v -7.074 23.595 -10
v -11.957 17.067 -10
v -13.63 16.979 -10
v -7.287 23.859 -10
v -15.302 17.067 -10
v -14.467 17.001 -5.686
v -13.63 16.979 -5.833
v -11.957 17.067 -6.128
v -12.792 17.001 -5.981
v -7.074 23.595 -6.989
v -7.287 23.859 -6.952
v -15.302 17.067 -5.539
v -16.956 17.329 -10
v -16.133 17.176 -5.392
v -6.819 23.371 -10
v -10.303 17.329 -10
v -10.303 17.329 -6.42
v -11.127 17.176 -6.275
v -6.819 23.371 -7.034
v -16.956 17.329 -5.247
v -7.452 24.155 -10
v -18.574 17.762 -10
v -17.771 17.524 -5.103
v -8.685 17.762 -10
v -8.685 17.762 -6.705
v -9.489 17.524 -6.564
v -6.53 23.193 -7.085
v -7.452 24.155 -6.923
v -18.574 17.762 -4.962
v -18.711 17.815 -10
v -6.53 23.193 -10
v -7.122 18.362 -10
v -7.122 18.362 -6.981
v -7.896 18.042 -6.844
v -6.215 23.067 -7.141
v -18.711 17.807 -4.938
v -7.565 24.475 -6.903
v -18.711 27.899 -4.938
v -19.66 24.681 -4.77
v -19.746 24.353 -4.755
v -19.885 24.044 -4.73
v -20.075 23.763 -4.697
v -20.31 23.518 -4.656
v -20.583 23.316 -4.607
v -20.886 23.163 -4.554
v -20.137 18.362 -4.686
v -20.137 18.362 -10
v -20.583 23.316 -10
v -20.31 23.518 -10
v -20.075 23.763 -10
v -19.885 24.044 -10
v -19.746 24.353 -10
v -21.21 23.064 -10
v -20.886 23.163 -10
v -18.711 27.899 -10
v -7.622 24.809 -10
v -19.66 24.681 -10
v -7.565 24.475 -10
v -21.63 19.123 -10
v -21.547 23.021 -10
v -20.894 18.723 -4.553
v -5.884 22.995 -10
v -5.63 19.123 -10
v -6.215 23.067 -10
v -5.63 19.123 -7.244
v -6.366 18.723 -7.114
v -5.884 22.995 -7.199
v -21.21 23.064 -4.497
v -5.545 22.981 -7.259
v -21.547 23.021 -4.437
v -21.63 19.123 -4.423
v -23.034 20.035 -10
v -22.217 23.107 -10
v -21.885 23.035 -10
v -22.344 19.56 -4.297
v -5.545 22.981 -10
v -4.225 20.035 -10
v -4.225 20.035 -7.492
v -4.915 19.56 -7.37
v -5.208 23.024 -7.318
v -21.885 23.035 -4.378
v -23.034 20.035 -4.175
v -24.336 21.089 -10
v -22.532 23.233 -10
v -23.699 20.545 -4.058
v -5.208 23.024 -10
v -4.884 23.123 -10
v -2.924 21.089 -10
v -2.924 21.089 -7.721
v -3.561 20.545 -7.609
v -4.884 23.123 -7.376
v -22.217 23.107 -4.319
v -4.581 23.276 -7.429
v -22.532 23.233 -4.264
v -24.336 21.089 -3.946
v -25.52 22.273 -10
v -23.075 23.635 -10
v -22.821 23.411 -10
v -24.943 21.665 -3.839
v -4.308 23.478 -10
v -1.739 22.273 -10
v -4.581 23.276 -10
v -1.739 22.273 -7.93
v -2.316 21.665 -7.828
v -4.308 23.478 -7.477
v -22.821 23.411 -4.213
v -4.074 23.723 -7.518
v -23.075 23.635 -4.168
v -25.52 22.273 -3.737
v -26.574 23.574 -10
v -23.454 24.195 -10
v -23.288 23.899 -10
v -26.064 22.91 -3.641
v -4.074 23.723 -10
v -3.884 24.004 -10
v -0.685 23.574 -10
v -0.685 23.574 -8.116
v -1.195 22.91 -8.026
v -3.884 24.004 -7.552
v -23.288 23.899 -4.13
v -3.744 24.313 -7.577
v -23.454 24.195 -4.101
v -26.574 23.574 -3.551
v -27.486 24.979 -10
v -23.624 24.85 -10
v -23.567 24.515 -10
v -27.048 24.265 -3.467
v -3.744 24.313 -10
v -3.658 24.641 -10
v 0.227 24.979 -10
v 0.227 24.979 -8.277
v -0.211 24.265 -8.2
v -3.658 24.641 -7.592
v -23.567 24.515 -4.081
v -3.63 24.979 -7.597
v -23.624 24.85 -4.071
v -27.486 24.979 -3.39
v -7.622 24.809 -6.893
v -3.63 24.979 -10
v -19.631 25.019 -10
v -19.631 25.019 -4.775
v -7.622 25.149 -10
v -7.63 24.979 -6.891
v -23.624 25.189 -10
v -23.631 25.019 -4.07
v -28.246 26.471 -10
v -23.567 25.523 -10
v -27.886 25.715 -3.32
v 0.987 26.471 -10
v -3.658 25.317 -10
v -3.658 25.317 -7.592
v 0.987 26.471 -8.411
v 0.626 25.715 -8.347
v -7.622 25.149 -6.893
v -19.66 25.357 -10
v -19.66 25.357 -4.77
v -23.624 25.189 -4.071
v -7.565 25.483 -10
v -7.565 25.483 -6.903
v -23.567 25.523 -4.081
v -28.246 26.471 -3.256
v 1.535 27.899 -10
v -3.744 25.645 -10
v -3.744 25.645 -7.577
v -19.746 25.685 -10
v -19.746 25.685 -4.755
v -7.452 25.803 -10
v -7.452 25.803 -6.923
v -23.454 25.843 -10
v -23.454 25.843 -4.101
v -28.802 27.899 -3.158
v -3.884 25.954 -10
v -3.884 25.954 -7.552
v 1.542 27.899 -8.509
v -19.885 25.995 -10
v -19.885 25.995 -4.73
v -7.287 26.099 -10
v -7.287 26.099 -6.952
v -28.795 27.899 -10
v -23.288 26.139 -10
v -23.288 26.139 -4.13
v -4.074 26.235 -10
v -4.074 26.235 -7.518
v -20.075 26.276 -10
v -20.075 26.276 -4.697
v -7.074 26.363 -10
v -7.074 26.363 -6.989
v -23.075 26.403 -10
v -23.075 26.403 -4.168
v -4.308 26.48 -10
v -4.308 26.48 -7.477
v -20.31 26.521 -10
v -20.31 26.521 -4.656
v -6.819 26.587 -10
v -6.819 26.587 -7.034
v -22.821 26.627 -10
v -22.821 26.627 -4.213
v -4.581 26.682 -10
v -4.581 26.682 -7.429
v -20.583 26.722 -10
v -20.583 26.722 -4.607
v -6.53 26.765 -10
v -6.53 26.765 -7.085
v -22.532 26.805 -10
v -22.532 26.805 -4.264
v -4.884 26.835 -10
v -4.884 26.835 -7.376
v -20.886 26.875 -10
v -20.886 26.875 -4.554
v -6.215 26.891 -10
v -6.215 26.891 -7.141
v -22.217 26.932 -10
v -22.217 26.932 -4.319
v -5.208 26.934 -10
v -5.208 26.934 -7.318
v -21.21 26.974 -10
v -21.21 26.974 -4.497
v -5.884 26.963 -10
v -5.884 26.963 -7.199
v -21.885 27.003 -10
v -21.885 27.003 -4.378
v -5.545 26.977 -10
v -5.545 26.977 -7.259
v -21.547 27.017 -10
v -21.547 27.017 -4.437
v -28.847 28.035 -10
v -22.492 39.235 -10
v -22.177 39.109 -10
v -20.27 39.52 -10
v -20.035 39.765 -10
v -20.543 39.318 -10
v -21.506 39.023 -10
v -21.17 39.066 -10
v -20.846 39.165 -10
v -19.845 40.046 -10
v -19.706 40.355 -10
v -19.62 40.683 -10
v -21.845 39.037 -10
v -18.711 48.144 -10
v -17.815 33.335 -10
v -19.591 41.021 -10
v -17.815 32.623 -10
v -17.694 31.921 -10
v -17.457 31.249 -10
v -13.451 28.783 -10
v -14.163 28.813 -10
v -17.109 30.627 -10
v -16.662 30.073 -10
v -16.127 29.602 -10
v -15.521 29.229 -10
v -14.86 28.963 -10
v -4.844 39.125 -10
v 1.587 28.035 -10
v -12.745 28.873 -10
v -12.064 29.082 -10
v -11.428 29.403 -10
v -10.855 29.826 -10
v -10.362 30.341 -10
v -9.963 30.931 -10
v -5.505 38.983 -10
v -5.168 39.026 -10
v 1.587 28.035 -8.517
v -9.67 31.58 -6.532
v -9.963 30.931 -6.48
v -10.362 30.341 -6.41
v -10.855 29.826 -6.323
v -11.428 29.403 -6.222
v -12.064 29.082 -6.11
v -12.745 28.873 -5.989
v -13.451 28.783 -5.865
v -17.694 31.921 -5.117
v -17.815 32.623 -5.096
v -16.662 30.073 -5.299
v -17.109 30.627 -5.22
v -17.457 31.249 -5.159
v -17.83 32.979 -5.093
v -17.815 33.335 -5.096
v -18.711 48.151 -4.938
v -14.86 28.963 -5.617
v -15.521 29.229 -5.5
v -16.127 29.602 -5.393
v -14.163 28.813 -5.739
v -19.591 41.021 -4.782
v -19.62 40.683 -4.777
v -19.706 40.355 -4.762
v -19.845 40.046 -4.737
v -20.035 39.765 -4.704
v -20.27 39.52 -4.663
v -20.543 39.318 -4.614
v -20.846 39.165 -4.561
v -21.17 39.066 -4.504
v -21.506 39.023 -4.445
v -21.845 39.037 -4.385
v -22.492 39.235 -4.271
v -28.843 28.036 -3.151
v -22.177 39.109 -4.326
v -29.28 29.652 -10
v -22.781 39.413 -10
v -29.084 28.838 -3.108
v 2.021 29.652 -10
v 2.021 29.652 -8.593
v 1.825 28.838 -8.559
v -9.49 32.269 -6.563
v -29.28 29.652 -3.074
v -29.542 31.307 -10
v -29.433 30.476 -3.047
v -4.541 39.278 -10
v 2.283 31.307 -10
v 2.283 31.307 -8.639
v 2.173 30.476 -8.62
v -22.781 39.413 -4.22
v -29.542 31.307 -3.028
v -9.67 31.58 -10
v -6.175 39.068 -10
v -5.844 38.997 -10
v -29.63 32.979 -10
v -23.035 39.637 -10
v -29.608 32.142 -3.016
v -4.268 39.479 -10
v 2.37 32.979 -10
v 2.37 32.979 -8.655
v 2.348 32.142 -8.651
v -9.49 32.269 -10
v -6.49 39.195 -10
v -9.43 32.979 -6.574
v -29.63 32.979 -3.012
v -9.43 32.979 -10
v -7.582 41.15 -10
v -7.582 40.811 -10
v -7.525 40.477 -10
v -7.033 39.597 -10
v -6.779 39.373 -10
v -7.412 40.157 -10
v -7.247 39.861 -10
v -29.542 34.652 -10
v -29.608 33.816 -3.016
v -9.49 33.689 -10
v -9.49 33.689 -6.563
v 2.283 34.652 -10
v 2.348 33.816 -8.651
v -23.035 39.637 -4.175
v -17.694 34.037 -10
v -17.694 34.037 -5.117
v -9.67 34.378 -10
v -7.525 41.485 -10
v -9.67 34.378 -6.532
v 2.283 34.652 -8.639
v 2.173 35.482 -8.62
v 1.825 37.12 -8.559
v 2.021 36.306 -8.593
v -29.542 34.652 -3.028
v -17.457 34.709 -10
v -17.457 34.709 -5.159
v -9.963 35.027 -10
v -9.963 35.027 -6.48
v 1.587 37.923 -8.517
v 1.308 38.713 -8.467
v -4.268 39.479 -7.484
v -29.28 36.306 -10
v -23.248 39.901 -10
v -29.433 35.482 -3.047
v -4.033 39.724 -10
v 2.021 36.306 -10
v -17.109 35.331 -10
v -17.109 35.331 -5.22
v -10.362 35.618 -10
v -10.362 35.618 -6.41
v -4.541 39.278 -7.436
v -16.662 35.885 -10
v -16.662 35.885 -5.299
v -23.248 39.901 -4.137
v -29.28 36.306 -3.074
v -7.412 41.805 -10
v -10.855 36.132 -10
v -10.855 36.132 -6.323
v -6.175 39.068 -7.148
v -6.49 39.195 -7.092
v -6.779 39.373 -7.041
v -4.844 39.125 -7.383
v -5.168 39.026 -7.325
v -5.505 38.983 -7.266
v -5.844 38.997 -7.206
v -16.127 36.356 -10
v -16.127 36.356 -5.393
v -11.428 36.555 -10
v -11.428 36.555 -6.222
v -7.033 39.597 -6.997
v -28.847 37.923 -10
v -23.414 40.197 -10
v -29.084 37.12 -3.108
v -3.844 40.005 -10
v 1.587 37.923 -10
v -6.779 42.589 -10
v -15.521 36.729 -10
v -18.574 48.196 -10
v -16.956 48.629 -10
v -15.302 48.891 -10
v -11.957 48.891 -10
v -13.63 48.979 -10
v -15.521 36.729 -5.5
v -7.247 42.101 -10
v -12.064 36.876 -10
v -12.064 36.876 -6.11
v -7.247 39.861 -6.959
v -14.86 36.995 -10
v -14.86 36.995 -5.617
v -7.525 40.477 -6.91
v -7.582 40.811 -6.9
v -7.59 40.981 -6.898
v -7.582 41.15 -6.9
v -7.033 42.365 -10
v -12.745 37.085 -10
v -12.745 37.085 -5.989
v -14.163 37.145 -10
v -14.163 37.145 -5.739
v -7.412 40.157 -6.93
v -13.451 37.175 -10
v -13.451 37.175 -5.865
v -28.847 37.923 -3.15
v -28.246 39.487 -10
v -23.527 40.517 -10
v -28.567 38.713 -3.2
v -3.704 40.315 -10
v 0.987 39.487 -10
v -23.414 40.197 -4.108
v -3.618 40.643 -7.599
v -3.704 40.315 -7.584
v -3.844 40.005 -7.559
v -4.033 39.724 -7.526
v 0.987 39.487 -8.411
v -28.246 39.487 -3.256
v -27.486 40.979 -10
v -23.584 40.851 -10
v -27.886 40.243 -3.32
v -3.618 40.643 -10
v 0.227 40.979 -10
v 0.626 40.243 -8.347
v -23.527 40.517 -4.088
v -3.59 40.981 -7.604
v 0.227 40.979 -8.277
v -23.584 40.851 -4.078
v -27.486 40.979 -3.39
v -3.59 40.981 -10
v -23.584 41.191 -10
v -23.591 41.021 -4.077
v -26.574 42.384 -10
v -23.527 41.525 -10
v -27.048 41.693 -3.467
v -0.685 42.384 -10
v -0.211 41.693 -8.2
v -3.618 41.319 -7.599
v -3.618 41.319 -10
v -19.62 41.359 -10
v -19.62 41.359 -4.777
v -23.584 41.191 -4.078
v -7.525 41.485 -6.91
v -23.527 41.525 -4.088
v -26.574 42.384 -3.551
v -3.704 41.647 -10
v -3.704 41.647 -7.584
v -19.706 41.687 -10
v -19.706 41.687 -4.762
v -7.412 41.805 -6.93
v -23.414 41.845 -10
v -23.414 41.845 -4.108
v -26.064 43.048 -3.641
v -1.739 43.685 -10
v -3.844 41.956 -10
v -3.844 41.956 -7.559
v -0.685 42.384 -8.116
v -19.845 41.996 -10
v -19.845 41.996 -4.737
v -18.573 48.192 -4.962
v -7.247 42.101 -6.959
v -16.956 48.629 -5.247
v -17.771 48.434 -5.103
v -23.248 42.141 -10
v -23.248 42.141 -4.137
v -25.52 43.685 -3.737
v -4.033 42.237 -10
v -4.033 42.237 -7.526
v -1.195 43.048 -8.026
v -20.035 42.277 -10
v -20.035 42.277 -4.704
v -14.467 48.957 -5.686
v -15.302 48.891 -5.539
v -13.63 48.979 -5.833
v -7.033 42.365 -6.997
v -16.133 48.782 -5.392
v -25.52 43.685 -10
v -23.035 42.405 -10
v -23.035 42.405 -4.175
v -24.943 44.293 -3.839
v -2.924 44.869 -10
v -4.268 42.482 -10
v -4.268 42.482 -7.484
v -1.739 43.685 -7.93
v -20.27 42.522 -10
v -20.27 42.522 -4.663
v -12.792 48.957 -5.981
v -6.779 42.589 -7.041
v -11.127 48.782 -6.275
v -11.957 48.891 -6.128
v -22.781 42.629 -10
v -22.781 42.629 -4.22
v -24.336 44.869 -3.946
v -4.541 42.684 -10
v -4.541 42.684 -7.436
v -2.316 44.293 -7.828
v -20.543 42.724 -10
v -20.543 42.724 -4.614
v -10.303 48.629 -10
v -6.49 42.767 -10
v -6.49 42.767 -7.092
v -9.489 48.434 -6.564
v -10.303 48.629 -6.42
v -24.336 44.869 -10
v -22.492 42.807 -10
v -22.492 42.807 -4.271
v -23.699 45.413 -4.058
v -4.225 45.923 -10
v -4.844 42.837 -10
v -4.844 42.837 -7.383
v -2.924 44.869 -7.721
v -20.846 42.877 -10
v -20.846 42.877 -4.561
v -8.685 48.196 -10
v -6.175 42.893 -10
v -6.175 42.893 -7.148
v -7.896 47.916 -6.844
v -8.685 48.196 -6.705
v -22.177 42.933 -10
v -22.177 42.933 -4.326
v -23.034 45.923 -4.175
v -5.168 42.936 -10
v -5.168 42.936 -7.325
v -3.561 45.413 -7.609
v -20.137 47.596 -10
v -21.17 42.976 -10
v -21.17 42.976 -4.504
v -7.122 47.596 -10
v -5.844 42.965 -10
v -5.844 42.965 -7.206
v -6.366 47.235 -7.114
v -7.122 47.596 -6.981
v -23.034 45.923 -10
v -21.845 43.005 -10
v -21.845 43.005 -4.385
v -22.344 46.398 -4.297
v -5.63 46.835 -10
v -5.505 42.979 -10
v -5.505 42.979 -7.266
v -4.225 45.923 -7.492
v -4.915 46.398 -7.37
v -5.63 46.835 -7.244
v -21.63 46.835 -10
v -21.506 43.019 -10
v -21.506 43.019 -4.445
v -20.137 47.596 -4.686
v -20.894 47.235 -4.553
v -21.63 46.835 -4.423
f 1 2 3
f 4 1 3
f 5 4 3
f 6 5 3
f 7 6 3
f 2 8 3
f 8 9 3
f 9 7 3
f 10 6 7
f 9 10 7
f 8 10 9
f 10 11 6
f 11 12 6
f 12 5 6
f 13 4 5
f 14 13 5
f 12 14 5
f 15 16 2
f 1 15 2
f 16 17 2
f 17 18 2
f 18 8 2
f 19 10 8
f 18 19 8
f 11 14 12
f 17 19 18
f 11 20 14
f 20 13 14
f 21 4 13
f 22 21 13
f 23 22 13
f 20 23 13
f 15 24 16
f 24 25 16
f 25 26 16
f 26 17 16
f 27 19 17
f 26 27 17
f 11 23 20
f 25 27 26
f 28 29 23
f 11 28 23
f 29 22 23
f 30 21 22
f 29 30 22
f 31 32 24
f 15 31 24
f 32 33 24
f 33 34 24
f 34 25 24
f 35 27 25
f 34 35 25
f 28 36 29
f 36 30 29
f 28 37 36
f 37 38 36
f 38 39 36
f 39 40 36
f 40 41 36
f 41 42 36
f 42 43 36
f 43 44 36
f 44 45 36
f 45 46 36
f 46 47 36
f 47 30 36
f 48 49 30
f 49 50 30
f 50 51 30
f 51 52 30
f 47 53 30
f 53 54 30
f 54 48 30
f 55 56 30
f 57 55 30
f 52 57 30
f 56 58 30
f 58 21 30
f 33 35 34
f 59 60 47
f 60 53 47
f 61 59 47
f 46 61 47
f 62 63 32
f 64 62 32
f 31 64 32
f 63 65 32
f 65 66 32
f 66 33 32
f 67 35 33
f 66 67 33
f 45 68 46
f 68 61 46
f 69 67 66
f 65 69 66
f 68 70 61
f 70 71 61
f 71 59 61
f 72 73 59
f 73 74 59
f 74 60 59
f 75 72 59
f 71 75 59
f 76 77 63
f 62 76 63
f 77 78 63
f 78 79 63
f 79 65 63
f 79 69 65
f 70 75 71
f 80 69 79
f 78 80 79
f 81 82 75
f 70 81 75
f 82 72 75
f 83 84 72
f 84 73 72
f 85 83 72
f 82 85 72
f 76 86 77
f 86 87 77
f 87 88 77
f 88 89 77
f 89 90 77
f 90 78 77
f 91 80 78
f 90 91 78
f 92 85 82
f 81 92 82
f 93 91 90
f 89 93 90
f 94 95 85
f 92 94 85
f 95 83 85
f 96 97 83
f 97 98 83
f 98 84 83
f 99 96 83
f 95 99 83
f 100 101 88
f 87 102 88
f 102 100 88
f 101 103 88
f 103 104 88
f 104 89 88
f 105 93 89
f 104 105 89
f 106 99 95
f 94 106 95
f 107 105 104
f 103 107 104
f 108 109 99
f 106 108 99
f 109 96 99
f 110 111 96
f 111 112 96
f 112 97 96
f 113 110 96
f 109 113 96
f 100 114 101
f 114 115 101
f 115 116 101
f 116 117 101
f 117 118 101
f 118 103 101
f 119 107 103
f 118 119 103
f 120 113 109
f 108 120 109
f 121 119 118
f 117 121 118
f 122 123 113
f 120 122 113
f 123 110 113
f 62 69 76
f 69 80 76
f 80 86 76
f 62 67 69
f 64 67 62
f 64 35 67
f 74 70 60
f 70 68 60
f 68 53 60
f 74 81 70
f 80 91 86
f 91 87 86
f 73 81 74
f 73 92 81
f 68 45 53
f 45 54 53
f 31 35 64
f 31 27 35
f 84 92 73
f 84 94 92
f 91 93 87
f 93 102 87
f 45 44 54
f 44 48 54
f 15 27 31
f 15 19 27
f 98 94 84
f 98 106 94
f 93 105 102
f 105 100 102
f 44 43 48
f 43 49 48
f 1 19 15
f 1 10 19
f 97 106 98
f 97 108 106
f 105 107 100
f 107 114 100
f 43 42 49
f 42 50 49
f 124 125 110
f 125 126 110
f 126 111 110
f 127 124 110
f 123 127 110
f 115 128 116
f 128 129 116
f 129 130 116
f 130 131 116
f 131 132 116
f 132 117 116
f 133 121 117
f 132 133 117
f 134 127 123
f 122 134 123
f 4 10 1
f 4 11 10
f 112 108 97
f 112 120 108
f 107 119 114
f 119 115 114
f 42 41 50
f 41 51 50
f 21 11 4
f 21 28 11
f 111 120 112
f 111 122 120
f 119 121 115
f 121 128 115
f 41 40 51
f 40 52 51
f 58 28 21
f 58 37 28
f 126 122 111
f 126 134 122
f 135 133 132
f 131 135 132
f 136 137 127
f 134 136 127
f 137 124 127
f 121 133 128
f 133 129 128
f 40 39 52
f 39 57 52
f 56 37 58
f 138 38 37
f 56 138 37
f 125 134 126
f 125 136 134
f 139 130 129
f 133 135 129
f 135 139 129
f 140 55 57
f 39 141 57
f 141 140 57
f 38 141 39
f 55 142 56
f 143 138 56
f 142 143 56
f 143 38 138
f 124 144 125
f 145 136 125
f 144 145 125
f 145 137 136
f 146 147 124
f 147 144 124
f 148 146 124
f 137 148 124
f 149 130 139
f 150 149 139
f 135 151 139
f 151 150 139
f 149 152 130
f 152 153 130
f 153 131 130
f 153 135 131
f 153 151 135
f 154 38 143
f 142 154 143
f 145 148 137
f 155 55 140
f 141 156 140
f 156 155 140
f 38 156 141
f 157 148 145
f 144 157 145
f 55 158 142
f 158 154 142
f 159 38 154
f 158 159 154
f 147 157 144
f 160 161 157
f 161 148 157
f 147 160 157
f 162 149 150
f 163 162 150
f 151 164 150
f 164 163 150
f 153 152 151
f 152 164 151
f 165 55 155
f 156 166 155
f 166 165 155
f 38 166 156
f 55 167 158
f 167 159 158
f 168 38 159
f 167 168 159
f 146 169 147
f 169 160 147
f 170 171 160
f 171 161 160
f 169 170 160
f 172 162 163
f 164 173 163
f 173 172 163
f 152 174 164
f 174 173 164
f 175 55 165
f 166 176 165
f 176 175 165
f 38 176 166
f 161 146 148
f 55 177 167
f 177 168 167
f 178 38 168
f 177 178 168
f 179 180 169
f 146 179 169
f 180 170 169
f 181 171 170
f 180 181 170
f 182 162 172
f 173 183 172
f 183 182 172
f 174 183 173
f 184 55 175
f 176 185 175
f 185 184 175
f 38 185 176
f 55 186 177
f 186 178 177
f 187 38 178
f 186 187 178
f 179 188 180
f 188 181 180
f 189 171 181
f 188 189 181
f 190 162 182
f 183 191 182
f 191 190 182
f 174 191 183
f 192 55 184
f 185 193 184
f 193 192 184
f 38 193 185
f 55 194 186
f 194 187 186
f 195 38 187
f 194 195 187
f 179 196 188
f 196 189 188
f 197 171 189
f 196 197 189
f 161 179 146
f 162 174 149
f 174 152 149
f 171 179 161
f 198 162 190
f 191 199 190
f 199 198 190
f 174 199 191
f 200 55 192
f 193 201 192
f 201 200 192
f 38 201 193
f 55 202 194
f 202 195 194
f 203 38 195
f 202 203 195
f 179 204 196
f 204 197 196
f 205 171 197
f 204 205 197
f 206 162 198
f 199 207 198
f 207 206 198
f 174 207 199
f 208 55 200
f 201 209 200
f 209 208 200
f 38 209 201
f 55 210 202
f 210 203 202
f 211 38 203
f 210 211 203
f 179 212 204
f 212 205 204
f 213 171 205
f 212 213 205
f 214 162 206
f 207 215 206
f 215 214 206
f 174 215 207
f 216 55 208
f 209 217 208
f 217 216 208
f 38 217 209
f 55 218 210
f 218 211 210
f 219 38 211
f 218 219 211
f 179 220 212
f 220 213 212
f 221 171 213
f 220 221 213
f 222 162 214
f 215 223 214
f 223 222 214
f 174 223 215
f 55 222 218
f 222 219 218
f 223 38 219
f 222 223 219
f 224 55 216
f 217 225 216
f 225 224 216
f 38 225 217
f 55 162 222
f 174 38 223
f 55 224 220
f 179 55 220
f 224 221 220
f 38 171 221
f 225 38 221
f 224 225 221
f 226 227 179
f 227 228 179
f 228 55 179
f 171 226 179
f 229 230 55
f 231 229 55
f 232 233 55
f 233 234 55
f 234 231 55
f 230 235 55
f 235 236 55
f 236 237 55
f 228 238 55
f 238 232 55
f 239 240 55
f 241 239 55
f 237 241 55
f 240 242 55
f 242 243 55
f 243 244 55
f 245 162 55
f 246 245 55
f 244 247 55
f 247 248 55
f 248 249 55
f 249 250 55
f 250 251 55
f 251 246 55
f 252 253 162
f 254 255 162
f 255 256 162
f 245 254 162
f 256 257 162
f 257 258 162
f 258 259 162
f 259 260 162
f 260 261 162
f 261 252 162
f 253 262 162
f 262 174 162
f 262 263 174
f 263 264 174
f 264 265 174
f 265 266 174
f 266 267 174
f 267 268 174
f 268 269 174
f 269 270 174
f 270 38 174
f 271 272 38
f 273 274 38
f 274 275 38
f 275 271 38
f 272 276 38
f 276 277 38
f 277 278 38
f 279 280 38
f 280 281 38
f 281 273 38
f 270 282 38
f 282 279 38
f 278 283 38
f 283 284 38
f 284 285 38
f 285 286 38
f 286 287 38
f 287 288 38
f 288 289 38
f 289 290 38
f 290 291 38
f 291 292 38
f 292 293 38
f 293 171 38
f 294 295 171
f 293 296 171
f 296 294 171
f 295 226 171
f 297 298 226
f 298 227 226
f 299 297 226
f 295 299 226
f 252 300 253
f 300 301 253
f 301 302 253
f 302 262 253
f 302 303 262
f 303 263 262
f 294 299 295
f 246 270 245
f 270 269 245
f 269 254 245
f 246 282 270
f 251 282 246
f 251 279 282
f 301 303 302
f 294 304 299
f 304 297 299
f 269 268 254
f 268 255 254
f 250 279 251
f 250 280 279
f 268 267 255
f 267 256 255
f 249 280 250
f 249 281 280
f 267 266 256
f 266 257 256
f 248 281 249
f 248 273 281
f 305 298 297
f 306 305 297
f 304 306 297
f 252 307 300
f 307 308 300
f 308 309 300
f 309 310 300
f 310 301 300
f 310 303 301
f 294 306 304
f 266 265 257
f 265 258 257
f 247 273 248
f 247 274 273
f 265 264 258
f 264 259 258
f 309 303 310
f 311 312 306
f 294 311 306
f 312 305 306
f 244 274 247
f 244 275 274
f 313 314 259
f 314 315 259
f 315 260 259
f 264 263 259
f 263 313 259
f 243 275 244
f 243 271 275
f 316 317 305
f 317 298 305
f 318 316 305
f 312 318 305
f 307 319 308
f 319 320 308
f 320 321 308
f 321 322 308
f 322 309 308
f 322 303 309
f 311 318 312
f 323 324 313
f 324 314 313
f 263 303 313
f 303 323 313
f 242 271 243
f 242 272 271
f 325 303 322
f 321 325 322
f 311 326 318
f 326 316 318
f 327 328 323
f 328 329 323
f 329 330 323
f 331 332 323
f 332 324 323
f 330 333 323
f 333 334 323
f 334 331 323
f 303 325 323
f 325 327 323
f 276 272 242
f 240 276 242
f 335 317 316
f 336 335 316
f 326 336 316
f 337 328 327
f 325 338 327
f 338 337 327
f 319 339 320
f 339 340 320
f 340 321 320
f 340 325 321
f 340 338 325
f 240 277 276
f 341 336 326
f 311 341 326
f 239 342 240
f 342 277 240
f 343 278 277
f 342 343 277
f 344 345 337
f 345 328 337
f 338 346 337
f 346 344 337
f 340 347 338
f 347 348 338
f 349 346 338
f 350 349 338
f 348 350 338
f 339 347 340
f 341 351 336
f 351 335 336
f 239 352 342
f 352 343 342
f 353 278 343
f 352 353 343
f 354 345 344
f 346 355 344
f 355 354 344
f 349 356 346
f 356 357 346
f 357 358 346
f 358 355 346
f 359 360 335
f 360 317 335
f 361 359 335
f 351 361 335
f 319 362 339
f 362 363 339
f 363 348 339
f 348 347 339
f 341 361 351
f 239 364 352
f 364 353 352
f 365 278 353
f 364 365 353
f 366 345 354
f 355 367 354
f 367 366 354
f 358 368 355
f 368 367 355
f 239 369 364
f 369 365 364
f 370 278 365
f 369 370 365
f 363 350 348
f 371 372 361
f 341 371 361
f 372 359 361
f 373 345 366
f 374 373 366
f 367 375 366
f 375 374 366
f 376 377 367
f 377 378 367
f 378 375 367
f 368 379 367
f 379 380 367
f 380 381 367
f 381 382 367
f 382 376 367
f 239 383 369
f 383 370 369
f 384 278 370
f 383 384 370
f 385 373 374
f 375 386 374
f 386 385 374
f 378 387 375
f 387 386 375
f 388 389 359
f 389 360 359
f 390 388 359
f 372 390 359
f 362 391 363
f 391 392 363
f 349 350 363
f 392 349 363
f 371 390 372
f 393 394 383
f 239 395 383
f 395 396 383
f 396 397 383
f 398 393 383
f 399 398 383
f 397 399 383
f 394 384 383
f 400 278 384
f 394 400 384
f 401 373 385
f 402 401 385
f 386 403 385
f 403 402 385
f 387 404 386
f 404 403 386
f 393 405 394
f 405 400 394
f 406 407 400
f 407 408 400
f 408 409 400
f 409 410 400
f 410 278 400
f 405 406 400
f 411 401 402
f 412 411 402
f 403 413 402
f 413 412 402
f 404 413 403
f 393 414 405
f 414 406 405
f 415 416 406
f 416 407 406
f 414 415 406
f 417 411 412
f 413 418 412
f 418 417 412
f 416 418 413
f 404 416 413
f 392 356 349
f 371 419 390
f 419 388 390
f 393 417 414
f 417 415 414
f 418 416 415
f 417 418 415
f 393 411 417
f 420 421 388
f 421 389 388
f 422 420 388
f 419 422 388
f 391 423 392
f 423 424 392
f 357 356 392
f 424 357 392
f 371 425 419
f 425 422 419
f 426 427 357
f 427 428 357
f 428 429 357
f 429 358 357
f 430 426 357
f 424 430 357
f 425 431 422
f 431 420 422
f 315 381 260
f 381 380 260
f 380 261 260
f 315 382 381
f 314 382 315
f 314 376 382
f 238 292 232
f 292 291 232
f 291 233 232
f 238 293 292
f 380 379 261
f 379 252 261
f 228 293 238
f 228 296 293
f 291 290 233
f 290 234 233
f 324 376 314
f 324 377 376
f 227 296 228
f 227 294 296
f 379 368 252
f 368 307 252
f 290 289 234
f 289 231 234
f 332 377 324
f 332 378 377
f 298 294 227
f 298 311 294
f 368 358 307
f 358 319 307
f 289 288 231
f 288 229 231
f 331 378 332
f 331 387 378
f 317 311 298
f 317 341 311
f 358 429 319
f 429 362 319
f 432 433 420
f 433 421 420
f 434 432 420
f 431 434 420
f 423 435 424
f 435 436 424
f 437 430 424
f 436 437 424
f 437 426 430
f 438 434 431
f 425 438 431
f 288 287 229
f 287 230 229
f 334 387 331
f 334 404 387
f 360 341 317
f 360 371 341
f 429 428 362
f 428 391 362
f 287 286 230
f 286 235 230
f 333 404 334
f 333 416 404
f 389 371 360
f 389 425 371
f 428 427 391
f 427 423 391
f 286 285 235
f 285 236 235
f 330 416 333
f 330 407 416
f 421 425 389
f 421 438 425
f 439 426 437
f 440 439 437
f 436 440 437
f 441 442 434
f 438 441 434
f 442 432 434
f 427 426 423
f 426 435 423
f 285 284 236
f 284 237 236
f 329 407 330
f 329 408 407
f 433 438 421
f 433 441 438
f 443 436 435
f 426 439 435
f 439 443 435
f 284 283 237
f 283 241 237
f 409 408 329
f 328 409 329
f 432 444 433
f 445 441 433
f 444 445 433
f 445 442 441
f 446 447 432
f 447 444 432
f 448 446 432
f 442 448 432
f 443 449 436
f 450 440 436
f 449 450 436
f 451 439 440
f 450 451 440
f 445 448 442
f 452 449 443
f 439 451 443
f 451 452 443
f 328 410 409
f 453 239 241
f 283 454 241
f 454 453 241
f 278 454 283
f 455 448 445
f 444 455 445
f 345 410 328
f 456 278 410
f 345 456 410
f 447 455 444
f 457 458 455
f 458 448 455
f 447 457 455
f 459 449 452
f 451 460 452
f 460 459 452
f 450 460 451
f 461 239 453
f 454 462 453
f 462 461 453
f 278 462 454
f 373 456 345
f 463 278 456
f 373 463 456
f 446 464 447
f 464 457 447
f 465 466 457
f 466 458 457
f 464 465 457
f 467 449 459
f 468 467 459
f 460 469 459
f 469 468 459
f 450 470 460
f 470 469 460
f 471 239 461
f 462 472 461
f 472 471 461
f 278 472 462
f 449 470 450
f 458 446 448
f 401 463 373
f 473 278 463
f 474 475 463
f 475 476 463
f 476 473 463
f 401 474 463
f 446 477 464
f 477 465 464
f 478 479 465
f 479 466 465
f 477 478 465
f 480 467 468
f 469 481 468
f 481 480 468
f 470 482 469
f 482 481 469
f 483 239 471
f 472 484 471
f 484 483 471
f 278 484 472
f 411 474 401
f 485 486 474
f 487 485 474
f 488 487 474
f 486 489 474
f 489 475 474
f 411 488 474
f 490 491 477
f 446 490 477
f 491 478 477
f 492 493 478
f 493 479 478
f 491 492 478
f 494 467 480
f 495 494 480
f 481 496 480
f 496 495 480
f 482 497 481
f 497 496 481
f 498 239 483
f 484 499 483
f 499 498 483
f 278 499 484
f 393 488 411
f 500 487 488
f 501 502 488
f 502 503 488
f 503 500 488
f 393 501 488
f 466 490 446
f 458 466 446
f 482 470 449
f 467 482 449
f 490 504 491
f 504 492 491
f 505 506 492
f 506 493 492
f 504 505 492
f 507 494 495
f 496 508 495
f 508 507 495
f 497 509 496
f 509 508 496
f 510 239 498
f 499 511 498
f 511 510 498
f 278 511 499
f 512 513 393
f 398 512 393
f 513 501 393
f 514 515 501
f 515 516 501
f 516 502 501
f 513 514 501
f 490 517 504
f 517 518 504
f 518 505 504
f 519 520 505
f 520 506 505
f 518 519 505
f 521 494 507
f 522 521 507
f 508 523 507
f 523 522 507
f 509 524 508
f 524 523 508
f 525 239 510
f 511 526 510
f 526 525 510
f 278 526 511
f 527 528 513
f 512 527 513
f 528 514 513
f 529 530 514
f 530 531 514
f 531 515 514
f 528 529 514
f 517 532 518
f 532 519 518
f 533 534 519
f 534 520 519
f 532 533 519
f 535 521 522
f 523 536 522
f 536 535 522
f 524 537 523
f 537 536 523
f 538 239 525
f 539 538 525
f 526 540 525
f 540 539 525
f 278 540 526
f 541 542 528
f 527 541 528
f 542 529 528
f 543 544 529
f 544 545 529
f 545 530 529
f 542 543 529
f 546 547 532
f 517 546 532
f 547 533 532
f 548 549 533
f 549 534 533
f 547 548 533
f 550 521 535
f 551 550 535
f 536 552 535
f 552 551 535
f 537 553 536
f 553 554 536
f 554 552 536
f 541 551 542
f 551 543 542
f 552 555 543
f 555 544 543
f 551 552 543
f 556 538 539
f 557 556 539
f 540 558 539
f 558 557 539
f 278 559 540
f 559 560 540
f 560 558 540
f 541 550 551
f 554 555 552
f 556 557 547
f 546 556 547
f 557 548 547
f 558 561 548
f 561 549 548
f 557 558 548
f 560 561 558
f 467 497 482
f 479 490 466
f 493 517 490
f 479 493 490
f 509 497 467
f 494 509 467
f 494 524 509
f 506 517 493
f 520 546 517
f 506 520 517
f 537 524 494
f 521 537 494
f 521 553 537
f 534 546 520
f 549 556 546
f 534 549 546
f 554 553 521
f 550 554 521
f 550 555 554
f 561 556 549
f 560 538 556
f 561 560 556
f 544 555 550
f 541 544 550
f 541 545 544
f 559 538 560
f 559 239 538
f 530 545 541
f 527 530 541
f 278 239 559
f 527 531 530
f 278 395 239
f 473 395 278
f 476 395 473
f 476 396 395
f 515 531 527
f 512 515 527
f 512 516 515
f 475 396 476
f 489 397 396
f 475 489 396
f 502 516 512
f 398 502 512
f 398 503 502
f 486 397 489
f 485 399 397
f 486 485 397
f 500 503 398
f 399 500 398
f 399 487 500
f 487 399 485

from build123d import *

# Parameters (mm, degrees)
SKETCH1_W           = 41.85
SKETCH1_H           = 10
SKETCH1_W_2         = 10
SKETCH1_H_2         = 29
BOSS_EXTRUDE1_DEPTH = 48
SKETCH4_R           = 2
SKETCH4_R_2         = 4.2
CUT_EXTRUDE2_DEPTH  = 48
SKETCH7_W           = 100.326592526
SKETCH7_H           = 57.143742852
CUT_EXTRUDE5_DEPTH  = 14.7
CUT_EXTRUDE6_DEPTH  = 54.7
BOSS_EXTRUDE5_DEPTH = 13.7
SKETCH19_W          = 55.248240751
SKETCH19_H          = 86.451998217
SKETCH19_R          = 16
CUT_EXTRUDE10_DEPTH = 13.7


with BuildPart() as part:
    # Sketch1 → Boss-Extrude1 (new body)
    with BuildSketch(Plane(origin=(0, 0, 0), x_dir=(1, 0, 0), z_dir=(0, 1, 0))):
        with Locations((-10.925, 5)):
            Rectangle(SKETCH1_W, SKETCH1_H)
        with Locations((5, -14.5)):
            Rectangle(SKETCH1_W_2, SKETCH1_H_2)
    extrude(amount=BOSS_EXTRUDE1_DEPTH)

    # Sketch4 → Cut-Extrude2 (cut)
    with BuildSketch(Plane.XY):
        with Locations((-5.589559388, 40.980827232)):
            Circle(SKETCH4_R)
        with Locations((-5.629681083, 24.979051073)):
            Circle(SKETCH4_R)
        with Locations((-21.591335547, 41.020948927)):
            Circle(SKETCH4_R)
        with Locations((-21.631457243, 25.019172768)):
            Circle(SKETCH4_R)
        with Locations((-13.629681083, 32.979051073)):
            Circle(SKETCH4_R_2)
    extrude(amount=-CUT_EXTRUDE2_DEPTH, mode=Mode.SUBTRACT)

    # Sketch7 → Cut-Extrude5 (cut)
    with BuildSketch(Plane.XZ):
        with Locations((-16.144605738, 7.803574406)):
            Rectangle(SKETCH7_W, SKETCH7_H)
    extrude(amount=-CUT_EXTRUDE5_DEPTH, mode=Mode.SUBTRACT)

    # Sketch8 → Cut-Extrude6 (cut)
    with BuildSketch(Plane.XZ.offset(-14.7)):
        Polygon((-31.85, -2.620715857), (10, -10), (10, 29), (0, 29), (0, 0), (-31.85, 0), align=None)
    extrude(amount=-CUT_EXTRUDE6_DEPTH, mode=Mode.SUBTRACT)

    # Sketch18 → Boss-Extrude5 (add)
    with BuildSketch(Plane(origin=(0, 48, 0), x_dir=(1, 0, 0), z_dir=(0, 1, 0))):
        Polygon((-31.85, 2.620715857), (-31.85, 10), (10, 10), align=None)
    extrude(amount=BOSS_EXTRUDE5_DEPTH)

    # Sketch19 → Cut-Extrude10 (cut)
    with BuildSketch(Plane(origin=(0, 0, -10), x_dir=(-1, 0, 0), z_dir=(0, 0, -1))):
        with Locations((12.788642717, 43.225999109)):
            Rectangle(SKETCH19_W, SKETCH19_H)
        with Locations((13.629681083, 32.979051073)):
            Circle(SKETCH19_R, mode=Mode.SUBTRACT)
    extrude(amount=-CUT_EXTRUDE10_DEPTH, mode=Mode.SUBTRACT)


solid = part.part
